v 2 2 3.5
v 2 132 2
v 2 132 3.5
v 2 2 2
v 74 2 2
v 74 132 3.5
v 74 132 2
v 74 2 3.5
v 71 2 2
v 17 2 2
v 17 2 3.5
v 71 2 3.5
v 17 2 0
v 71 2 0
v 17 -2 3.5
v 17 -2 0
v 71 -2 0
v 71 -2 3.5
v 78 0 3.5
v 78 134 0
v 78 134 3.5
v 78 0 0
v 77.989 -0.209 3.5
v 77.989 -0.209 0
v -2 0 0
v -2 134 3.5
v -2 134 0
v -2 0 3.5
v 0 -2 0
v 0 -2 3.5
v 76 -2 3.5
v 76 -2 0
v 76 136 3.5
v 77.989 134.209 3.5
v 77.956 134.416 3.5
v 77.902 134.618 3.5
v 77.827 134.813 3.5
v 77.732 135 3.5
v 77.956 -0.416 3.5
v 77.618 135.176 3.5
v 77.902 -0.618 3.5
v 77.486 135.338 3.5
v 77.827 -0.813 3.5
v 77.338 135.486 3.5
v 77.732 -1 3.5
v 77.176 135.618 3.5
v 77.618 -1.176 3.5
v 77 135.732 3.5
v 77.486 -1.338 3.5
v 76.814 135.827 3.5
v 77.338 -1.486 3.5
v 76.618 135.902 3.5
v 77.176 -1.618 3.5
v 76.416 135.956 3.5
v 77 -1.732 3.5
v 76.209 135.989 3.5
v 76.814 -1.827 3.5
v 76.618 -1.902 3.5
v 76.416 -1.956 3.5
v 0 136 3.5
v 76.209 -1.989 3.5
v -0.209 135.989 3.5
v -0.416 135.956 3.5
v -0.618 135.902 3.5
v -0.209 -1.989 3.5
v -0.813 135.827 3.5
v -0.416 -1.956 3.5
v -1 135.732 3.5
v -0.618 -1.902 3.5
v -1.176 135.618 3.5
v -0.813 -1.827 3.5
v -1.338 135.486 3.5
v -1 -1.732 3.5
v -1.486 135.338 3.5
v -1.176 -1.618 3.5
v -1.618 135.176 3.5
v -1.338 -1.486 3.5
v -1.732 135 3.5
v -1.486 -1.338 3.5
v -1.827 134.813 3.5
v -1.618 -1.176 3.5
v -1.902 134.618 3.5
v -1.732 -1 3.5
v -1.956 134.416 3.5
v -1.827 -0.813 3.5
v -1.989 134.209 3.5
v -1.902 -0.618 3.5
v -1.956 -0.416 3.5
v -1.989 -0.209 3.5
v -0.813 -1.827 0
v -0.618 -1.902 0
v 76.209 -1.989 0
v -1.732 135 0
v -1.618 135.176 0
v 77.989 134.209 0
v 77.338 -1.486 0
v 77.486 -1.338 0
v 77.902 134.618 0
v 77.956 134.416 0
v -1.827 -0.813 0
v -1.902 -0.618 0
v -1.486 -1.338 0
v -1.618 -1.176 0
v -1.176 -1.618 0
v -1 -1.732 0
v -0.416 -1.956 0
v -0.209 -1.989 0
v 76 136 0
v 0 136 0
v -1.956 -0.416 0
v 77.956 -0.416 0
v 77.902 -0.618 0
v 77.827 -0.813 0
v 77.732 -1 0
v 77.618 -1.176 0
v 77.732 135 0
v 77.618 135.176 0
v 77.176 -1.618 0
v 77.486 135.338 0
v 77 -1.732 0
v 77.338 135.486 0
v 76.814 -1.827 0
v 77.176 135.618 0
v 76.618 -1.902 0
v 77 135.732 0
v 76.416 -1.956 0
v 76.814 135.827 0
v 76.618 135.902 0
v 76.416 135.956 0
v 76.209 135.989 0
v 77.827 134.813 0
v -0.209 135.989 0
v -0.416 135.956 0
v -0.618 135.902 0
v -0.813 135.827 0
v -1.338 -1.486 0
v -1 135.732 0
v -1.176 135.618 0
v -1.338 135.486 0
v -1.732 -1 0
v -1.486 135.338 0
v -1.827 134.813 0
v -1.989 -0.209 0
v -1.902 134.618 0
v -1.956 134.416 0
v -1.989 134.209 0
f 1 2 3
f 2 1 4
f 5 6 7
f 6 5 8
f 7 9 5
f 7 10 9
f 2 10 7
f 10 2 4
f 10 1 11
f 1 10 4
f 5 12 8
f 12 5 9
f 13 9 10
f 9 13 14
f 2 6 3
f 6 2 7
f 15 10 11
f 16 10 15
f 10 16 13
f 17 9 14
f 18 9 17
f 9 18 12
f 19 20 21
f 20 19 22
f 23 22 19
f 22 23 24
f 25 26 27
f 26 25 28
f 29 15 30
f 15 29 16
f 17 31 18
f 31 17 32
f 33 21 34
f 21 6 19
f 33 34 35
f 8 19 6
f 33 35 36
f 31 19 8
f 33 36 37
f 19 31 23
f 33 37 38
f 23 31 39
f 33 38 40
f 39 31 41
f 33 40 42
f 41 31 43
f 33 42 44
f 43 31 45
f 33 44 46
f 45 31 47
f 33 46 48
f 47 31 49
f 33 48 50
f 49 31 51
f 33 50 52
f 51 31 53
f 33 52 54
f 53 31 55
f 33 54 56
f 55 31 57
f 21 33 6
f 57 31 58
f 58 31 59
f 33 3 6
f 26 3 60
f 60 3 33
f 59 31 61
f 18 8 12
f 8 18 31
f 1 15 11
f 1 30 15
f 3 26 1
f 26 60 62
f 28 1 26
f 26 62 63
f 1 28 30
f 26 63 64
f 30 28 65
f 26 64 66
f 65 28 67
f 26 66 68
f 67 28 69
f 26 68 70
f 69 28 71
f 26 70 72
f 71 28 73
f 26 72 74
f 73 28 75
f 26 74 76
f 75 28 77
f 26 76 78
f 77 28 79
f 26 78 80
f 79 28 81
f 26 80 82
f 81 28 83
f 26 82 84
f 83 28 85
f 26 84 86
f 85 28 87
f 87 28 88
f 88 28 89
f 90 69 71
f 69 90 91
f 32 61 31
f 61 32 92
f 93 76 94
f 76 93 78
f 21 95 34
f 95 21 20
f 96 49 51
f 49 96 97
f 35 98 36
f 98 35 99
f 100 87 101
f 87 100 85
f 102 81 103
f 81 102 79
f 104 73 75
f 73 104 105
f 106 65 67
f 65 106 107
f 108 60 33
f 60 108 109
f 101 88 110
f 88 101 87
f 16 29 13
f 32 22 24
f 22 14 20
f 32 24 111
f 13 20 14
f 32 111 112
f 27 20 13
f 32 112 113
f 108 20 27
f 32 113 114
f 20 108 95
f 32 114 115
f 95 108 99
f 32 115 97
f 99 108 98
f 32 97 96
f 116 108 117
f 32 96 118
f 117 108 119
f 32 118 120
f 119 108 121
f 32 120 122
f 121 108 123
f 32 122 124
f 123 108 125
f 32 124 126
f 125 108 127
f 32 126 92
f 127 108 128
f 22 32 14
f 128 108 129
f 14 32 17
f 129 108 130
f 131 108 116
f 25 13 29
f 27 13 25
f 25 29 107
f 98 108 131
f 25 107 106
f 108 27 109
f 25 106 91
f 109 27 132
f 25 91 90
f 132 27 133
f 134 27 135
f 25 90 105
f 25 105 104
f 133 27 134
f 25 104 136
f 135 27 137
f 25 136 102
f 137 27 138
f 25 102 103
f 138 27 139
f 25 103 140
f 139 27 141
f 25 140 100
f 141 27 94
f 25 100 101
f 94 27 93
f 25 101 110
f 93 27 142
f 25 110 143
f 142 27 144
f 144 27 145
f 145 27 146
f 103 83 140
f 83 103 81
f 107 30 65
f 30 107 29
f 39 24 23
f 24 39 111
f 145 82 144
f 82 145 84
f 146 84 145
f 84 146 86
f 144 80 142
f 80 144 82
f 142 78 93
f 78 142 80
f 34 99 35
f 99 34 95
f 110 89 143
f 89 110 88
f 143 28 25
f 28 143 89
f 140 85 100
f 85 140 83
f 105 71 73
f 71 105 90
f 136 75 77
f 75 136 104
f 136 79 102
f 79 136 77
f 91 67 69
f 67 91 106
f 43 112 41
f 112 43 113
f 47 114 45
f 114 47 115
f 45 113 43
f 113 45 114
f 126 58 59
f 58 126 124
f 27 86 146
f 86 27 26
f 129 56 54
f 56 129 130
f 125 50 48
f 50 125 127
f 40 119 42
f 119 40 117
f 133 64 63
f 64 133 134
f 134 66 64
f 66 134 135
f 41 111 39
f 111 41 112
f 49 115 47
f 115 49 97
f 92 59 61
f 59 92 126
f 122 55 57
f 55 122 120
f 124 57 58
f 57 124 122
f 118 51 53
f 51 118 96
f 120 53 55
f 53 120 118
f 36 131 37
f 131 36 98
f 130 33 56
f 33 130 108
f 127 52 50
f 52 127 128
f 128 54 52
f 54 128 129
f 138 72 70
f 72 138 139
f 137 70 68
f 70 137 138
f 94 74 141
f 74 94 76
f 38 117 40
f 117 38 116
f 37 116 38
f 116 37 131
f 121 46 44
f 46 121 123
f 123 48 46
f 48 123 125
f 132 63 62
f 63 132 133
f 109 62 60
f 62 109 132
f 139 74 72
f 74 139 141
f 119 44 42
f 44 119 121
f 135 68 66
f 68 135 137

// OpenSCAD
//
// Copyright (C) 2018 Purism SPC
//
// SPDX-License-Identifier: GPL-3.0+
//

thickness=1.5;
base_thickness=2;
bezel=2;
disp_h=130;
disp_w=72;
$fn=60;

difference() {
    minkowski() {
        cube([2*bezel+disp_w, 2*bezel+disp_h, base_thickness ]);
        cylinder(r=bezel, h=thickness);
    }
    union() {
    translate([bezel, bezel, base_thickness])
        cube([disp_w, disp_h, thickness+1] );
    translate([disp_w+bezel-57, -(bezel*2), -1])
        cube([54, bezel*3, thickness+base_thickness+2] );
    }
}
